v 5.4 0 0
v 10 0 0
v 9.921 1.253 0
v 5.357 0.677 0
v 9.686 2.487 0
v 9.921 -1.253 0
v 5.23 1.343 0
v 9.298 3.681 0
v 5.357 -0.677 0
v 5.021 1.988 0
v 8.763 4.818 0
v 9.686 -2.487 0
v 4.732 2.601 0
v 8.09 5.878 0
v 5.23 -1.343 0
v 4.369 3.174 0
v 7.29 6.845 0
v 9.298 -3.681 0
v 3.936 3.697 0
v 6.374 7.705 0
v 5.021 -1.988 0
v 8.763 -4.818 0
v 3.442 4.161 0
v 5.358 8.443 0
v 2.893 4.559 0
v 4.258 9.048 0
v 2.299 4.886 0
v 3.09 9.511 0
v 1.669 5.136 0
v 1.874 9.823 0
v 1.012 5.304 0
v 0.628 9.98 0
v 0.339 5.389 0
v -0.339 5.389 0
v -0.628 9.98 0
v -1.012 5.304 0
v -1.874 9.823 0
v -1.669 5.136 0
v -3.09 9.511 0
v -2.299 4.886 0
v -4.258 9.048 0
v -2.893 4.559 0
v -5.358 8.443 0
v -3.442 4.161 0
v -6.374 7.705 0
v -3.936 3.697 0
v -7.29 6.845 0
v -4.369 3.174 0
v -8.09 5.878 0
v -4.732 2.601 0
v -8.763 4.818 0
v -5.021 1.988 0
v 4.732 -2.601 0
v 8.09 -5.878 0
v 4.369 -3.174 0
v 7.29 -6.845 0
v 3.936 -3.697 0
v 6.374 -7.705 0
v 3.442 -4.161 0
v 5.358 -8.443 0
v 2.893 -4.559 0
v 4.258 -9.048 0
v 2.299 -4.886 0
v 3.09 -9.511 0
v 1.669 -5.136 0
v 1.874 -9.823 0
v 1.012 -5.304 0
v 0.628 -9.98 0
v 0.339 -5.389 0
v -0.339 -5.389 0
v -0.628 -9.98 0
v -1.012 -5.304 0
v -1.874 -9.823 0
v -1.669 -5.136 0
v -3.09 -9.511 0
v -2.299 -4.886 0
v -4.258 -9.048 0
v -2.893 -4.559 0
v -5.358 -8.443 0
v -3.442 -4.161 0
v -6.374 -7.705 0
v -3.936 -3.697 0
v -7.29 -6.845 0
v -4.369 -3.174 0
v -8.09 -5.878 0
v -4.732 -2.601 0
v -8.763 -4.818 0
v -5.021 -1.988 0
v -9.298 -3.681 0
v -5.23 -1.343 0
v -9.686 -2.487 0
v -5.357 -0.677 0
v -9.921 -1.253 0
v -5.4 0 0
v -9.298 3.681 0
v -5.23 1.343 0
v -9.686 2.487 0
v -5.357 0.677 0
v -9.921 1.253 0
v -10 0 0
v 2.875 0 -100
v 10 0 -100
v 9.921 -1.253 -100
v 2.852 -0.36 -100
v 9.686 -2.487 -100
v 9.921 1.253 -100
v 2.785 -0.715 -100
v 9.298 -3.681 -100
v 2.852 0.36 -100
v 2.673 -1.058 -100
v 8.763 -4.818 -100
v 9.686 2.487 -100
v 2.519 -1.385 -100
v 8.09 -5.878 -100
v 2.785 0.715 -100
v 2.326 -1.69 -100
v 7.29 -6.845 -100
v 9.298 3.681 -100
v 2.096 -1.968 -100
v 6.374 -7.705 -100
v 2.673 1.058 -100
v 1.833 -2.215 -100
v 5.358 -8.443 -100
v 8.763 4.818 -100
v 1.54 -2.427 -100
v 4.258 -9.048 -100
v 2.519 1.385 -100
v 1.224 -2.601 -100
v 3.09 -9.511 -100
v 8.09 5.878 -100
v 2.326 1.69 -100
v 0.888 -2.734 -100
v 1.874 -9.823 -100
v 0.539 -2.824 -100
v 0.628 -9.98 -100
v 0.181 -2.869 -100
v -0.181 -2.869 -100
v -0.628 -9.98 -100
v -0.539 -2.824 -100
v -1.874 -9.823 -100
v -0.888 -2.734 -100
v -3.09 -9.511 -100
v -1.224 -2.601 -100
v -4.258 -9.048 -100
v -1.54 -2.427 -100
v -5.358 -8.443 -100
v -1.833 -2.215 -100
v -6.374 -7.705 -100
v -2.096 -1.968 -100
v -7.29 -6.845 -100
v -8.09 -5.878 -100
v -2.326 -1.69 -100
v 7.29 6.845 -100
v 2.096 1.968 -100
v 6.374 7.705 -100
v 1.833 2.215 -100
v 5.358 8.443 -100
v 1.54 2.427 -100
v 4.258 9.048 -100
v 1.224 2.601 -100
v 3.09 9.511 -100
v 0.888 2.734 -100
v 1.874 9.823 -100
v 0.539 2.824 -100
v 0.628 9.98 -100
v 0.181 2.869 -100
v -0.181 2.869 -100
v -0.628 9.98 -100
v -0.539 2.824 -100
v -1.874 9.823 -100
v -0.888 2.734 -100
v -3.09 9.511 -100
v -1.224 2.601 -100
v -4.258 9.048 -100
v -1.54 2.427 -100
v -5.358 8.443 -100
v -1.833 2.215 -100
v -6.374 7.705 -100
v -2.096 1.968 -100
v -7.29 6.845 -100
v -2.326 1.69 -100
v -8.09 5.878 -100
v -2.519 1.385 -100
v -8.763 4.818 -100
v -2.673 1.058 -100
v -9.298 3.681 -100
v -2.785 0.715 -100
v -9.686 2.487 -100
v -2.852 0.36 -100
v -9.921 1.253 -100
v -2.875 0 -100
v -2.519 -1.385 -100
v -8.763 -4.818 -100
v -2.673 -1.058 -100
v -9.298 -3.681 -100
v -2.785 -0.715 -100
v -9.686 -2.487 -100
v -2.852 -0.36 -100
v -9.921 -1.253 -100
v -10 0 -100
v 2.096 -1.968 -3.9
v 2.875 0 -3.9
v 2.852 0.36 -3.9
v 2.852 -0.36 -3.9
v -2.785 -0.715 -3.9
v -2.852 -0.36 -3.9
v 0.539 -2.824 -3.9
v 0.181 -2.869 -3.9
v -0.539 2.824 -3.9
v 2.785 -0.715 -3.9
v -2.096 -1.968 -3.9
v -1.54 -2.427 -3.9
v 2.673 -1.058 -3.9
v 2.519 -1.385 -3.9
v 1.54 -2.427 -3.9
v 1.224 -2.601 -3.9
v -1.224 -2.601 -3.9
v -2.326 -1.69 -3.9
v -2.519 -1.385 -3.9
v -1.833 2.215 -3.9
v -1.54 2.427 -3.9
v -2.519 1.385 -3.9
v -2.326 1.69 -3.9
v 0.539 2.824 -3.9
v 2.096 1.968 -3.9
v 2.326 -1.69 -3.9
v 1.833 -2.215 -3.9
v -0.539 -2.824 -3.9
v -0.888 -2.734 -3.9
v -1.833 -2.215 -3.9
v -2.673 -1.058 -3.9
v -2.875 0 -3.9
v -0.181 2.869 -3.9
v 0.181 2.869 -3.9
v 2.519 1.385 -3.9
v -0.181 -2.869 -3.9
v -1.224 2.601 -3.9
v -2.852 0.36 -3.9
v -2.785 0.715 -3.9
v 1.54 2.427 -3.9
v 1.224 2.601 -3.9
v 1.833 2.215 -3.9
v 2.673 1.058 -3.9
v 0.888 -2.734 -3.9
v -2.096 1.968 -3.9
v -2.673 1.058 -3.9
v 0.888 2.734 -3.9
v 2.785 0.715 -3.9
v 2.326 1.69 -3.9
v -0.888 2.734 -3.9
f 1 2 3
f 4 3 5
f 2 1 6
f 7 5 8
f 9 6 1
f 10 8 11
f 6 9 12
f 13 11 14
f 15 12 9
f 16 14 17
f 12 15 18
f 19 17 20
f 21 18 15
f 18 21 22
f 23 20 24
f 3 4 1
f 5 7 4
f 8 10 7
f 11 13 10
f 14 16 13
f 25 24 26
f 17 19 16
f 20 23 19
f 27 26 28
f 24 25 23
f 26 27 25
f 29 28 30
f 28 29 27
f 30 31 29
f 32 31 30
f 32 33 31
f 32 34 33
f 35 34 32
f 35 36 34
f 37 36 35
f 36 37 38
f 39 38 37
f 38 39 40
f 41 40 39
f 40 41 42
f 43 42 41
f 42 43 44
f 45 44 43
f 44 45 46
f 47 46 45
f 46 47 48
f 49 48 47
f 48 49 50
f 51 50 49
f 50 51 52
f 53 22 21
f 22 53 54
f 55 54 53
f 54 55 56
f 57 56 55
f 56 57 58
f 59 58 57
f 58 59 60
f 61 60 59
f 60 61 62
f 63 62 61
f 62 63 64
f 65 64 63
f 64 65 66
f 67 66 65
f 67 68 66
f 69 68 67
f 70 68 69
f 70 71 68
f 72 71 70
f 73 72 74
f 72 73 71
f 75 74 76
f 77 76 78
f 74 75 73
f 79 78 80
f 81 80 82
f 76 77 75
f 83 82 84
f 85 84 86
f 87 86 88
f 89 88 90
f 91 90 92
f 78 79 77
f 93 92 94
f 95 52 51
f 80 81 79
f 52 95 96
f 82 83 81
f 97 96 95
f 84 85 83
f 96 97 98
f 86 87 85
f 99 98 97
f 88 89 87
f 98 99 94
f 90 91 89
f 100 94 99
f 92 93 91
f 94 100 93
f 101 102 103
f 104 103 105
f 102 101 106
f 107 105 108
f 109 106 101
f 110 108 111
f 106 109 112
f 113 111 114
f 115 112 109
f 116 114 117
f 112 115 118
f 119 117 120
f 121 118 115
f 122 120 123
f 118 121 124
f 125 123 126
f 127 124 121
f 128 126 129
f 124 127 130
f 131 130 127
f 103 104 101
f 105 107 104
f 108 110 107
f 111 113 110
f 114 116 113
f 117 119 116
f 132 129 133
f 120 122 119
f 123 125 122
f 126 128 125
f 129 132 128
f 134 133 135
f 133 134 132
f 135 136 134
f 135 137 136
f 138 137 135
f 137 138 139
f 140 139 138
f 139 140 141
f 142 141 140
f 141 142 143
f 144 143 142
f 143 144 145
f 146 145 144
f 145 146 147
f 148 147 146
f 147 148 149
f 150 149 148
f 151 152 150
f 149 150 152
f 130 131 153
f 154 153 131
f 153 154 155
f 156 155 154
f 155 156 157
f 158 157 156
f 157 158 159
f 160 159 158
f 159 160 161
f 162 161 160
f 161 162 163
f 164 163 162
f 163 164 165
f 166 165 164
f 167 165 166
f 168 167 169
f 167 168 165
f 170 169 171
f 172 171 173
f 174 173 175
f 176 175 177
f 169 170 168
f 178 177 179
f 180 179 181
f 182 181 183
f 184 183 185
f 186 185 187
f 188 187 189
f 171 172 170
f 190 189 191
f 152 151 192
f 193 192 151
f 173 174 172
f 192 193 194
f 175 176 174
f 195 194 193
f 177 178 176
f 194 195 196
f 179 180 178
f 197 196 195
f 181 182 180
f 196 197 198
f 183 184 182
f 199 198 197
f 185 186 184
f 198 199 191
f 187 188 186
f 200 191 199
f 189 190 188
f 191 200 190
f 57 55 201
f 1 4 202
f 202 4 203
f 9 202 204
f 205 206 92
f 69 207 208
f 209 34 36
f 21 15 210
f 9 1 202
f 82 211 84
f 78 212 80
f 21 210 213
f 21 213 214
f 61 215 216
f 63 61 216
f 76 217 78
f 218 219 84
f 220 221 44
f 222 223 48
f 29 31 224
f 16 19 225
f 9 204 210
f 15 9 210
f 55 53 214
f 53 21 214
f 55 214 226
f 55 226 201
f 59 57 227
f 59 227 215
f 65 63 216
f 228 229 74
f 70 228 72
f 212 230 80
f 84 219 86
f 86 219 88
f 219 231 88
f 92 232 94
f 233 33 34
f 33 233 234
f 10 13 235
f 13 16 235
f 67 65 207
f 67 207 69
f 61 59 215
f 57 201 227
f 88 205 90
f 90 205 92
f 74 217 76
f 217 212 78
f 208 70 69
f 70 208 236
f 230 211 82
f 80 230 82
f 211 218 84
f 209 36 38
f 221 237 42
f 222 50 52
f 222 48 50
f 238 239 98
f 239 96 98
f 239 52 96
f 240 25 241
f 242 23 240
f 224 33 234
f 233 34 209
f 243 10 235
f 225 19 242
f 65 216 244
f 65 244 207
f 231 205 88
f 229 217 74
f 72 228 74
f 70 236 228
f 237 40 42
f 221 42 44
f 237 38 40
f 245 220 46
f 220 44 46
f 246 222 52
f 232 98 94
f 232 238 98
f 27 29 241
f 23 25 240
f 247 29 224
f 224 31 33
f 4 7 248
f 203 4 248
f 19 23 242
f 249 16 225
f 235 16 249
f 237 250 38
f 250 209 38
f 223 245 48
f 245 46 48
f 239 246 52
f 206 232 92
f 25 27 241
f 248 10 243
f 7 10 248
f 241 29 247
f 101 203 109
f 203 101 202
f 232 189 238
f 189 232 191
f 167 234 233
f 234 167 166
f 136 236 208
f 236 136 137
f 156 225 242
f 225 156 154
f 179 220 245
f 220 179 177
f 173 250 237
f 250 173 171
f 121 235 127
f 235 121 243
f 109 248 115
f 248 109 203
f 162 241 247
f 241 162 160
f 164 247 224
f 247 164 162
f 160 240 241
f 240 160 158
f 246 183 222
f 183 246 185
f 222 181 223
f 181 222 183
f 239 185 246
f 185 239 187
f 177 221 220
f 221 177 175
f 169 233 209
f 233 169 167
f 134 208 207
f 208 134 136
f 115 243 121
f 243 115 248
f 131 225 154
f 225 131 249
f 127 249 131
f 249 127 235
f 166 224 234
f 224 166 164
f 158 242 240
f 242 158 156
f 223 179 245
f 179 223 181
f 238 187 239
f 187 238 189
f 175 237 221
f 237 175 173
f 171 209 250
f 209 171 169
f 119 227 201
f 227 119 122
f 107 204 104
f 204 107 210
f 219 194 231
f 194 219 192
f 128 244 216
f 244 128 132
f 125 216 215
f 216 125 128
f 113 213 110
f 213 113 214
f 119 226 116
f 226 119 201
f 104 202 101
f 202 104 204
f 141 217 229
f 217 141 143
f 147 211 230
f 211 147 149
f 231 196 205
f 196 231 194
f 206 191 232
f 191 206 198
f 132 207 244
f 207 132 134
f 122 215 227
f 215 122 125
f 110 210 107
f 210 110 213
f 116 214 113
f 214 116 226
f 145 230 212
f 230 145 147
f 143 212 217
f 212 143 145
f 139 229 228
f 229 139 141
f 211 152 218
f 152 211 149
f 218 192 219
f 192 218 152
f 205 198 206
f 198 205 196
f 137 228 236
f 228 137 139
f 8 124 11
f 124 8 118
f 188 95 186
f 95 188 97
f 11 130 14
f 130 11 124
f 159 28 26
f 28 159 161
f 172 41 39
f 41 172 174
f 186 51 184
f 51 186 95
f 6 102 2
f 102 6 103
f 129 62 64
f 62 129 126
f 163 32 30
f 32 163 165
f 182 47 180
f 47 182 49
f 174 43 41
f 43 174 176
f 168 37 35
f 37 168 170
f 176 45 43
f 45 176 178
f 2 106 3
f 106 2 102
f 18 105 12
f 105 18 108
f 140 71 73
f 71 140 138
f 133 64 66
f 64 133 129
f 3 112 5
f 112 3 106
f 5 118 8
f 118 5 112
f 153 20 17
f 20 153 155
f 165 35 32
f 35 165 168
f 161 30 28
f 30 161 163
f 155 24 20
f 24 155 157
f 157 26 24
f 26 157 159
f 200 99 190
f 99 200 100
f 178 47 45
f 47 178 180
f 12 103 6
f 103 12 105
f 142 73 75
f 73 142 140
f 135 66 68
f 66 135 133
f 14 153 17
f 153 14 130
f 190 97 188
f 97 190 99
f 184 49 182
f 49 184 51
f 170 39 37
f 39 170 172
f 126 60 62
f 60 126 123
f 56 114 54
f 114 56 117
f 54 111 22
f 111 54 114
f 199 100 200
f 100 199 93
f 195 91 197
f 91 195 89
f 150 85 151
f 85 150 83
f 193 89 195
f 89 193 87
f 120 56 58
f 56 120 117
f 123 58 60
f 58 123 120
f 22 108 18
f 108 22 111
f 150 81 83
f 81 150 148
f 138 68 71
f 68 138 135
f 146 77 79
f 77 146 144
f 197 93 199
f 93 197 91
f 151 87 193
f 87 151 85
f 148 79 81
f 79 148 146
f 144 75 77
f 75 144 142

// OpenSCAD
$fn = 50;


difference() {
	union() {
		translate(v = [0, 0, -100.0000000000]) {
			cylinder(h = 100, r = 10.0000000000);
		}
		cylinder(h = 0, r = 16.0000000000);
	}
	union() {
		translate(v = [0, 0, 0]) {
			rotate(a = [0, 0, 0]) {
				difference() {
					union() {
						#translate(v = [0, 0, -100.0000000000]) {
							cylinder(h = 100, r = 2.6000000000);
						}
						#translate(v = [0, 0, -3.9000000000]) {
							cylinder(h = 3.9000000000, r = 10.0000000000, r1 = 2.8750000000, r2 = 5.4000000000);
						}
						#translate(v = [0, 0, -100.0000000000]) {
							cylinder(h = 100, r = 2.8750000000);
						}
						#translate(v = [0, 0, -100.0000000000]) {
							cylinder(h = 100, r = 2.6000000000);
						}
					}
					union();
				}
			}
		}
	}
}
